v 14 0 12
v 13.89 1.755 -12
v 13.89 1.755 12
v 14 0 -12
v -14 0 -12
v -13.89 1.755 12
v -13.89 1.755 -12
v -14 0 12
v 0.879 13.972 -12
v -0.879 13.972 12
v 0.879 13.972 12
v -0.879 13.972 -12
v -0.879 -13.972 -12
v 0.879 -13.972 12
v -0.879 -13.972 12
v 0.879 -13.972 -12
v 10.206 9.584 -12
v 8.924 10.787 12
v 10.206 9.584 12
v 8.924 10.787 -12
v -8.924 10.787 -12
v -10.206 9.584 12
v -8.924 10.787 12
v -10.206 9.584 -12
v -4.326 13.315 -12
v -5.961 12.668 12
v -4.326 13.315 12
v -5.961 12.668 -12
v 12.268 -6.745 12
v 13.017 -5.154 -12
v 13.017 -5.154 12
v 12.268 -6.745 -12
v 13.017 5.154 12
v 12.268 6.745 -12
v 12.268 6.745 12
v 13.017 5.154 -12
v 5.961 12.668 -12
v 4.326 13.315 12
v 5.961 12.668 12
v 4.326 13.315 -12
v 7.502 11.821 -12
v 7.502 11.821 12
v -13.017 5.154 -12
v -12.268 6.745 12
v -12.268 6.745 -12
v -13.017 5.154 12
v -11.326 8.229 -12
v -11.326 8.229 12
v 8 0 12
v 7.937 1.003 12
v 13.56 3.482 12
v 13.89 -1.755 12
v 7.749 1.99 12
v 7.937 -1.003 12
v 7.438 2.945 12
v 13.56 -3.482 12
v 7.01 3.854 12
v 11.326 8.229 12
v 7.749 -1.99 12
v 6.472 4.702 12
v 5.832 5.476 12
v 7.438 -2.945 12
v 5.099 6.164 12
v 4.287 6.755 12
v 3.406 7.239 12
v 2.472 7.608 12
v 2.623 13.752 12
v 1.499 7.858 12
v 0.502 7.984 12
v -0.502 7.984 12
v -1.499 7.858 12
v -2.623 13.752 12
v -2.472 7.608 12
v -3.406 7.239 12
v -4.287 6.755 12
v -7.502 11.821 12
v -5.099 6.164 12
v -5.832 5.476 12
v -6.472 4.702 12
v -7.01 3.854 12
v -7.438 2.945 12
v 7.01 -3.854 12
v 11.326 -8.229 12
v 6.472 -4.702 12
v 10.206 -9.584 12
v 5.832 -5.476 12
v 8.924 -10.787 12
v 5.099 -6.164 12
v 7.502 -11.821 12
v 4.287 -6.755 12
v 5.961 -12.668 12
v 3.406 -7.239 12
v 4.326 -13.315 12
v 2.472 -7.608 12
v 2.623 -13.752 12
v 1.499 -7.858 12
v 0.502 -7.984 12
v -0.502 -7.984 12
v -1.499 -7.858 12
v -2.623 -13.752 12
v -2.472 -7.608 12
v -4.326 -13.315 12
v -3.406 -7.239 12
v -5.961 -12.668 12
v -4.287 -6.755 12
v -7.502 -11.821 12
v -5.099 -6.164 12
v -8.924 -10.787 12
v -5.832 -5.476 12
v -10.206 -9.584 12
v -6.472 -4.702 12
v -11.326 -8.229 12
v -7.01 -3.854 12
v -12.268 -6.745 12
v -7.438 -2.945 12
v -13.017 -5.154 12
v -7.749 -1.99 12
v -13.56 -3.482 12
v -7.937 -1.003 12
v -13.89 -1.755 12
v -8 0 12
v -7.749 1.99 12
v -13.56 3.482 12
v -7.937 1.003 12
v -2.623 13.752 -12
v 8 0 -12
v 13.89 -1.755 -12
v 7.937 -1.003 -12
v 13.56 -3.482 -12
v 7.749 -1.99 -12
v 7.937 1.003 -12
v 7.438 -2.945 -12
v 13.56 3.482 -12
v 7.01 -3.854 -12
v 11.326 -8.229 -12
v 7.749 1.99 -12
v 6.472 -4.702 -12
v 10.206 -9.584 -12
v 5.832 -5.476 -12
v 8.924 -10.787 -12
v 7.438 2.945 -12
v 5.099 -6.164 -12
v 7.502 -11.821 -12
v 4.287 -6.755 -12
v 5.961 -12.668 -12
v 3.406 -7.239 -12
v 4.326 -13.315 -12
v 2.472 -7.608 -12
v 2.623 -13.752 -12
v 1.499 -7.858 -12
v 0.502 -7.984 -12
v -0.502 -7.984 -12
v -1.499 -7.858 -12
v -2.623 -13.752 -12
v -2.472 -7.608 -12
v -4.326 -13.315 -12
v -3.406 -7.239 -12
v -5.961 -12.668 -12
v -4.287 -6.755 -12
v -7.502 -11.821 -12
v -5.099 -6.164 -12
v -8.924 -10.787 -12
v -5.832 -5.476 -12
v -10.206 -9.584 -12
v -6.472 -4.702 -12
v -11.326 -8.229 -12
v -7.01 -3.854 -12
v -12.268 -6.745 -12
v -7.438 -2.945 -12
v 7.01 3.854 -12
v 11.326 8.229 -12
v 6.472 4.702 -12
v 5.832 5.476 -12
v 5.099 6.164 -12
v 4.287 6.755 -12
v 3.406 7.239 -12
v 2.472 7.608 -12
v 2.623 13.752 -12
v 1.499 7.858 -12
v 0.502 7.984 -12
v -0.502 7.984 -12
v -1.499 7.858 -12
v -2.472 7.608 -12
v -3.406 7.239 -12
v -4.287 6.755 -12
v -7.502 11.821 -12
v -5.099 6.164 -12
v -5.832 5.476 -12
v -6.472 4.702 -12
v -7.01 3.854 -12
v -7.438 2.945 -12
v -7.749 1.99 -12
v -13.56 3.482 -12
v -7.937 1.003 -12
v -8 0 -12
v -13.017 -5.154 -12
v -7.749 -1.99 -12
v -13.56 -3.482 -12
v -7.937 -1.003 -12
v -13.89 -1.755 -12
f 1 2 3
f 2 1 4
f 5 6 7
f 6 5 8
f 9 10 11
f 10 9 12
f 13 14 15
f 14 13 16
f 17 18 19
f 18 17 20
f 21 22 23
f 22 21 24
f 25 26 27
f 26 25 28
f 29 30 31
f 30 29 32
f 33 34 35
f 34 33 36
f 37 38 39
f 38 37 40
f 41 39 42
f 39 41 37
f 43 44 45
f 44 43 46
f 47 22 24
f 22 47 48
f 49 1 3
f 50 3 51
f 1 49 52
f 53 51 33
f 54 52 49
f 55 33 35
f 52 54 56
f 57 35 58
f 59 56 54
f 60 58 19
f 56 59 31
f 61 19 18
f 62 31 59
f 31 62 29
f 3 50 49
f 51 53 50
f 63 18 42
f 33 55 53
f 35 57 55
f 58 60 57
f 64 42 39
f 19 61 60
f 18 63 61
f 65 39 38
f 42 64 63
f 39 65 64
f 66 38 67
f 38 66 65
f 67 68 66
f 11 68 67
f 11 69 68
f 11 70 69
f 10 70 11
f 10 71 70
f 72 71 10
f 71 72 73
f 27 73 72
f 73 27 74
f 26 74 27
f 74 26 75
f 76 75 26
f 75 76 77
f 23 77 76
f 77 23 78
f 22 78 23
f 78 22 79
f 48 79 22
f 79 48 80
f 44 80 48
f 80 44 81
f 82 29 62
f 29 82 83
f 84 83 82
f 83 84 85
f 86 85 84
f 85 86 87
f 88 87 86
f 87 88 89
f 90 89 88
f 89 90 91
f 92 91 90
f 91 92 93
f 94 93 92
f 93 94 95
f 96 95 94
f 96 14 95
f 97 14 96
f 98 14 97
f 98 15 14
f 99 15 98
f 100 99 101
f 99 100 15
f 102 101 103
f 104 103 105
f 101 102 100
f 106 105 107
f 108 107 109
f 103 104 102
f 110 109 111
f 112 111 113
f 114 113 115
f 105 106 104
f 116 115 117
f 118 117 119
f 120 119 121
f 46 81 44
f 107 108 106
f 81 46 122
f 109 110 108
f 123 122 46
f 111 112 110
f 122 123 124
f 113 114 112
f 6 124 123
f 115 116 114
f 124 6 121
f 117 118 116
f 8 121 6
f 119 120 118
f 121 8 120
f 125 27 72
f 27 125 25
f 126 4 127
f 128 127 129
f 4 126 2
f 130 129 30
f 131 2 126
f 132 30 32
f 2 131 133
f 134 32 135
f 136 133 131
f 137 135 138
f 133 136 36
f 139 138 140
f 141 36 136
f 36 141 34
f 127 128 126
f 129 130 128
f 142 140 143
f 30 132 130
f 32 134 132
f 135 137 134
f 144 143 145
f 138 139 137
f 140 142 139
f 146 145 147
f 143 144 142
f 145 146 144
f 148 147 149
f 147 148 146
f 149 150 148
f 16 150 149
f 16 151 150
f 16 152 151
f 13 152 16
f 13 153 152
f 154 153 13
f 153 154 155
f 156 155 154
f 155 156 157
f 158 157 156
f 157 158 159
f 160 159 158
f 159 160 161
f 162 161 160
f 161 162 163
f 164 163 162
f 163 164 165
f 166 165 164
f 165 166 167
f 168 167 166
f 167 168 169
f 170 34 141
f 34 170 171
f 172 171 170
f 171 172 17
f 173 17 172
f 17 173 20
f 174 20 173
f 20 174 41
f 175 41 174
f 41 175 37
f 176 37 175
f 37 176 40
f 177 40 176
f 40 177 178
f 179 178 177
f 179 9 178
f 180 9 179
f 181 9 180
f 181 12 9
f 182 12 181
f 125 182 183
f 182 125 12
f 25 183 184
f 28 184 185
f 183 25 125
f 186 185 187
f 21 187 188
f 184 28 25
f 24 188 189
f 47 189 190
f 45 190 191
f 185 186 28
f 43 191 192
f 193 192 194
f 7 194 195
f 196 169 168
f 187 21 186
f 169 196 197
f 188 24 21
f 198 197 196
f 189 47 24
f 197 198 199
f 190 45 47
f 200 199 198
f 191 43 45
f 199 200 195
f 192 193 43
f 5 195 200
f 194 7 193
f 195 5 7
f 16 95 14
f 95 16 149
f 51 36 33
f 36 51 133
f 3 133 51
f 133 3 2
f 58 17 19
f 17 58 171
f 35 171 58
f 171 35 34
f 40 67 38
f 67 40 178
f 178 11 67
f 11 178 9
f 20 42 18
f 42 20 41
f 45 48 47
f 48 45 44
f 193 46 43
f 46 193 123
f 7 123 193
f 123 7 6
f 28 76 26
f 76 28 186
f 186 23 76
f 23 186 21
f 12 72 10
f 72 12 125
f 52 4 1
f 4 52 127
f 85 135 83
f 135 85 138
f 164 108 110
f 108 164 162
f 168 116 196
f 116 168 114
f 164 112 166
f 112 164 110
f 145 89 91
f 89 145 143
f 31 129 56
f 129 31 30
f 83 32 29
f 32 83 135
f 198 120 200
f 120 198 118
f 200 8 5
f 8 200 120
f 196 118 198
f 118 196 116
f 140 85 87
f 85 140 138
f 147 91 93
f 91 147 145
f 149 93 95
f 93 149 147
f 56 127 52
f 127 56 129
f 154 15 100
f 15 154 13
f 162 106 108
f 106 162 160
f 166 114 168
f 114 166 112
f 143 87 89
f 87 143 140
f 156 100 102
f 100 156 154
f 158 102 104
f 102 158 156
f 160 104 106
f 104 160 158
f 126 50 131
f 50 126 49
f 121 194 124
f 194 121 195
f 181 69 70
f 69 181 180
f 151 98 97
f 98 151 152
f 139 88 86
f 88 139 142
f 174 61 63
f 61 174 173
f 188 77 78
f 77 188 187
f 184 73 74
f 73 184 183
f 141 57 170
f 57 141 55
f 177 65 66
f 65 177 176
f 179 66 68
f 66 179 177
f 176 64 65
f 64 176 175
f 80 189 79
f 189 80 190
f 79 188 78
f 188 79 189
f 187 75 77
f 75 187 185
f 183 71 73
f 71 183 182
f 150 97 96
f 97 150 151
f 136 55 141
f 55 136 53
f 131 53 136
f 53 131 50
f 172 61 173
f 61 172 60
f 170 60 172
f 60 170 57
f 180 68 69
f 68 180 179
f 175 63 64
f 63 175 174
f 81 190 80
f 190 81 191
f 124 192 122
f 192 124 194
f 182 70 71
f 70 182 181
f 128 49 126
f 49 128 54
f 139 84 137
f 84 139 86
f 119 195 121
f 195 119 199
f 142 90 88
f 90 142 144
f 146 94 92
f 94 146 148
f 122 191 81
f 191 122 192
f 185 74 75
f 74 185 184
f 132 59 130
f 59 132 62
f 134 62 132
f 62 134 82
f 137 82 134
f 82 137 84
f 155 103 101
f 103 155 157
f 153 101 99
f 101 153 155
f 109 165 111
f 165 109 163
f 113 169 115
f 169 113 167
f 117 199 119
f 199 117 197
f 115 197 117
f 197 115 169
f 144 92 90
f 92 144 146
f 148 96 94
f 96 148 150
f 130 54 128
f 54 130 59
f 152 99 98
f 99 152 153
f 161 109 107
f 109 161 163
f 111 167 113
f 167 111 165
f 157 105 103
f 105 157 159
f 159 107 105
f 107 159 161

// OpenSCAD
$fn = 50;


difference() {
	union() {
		translate(v = [0, 0, -12.0000000000]) {
			cylinder(h = 24, r = 14.0000000000);
		}
	}
	union() {
		translate(v = [0, 0, -100.0000000000]) {
			cylinder(h = 200, r = 8);
		}
	}
}
